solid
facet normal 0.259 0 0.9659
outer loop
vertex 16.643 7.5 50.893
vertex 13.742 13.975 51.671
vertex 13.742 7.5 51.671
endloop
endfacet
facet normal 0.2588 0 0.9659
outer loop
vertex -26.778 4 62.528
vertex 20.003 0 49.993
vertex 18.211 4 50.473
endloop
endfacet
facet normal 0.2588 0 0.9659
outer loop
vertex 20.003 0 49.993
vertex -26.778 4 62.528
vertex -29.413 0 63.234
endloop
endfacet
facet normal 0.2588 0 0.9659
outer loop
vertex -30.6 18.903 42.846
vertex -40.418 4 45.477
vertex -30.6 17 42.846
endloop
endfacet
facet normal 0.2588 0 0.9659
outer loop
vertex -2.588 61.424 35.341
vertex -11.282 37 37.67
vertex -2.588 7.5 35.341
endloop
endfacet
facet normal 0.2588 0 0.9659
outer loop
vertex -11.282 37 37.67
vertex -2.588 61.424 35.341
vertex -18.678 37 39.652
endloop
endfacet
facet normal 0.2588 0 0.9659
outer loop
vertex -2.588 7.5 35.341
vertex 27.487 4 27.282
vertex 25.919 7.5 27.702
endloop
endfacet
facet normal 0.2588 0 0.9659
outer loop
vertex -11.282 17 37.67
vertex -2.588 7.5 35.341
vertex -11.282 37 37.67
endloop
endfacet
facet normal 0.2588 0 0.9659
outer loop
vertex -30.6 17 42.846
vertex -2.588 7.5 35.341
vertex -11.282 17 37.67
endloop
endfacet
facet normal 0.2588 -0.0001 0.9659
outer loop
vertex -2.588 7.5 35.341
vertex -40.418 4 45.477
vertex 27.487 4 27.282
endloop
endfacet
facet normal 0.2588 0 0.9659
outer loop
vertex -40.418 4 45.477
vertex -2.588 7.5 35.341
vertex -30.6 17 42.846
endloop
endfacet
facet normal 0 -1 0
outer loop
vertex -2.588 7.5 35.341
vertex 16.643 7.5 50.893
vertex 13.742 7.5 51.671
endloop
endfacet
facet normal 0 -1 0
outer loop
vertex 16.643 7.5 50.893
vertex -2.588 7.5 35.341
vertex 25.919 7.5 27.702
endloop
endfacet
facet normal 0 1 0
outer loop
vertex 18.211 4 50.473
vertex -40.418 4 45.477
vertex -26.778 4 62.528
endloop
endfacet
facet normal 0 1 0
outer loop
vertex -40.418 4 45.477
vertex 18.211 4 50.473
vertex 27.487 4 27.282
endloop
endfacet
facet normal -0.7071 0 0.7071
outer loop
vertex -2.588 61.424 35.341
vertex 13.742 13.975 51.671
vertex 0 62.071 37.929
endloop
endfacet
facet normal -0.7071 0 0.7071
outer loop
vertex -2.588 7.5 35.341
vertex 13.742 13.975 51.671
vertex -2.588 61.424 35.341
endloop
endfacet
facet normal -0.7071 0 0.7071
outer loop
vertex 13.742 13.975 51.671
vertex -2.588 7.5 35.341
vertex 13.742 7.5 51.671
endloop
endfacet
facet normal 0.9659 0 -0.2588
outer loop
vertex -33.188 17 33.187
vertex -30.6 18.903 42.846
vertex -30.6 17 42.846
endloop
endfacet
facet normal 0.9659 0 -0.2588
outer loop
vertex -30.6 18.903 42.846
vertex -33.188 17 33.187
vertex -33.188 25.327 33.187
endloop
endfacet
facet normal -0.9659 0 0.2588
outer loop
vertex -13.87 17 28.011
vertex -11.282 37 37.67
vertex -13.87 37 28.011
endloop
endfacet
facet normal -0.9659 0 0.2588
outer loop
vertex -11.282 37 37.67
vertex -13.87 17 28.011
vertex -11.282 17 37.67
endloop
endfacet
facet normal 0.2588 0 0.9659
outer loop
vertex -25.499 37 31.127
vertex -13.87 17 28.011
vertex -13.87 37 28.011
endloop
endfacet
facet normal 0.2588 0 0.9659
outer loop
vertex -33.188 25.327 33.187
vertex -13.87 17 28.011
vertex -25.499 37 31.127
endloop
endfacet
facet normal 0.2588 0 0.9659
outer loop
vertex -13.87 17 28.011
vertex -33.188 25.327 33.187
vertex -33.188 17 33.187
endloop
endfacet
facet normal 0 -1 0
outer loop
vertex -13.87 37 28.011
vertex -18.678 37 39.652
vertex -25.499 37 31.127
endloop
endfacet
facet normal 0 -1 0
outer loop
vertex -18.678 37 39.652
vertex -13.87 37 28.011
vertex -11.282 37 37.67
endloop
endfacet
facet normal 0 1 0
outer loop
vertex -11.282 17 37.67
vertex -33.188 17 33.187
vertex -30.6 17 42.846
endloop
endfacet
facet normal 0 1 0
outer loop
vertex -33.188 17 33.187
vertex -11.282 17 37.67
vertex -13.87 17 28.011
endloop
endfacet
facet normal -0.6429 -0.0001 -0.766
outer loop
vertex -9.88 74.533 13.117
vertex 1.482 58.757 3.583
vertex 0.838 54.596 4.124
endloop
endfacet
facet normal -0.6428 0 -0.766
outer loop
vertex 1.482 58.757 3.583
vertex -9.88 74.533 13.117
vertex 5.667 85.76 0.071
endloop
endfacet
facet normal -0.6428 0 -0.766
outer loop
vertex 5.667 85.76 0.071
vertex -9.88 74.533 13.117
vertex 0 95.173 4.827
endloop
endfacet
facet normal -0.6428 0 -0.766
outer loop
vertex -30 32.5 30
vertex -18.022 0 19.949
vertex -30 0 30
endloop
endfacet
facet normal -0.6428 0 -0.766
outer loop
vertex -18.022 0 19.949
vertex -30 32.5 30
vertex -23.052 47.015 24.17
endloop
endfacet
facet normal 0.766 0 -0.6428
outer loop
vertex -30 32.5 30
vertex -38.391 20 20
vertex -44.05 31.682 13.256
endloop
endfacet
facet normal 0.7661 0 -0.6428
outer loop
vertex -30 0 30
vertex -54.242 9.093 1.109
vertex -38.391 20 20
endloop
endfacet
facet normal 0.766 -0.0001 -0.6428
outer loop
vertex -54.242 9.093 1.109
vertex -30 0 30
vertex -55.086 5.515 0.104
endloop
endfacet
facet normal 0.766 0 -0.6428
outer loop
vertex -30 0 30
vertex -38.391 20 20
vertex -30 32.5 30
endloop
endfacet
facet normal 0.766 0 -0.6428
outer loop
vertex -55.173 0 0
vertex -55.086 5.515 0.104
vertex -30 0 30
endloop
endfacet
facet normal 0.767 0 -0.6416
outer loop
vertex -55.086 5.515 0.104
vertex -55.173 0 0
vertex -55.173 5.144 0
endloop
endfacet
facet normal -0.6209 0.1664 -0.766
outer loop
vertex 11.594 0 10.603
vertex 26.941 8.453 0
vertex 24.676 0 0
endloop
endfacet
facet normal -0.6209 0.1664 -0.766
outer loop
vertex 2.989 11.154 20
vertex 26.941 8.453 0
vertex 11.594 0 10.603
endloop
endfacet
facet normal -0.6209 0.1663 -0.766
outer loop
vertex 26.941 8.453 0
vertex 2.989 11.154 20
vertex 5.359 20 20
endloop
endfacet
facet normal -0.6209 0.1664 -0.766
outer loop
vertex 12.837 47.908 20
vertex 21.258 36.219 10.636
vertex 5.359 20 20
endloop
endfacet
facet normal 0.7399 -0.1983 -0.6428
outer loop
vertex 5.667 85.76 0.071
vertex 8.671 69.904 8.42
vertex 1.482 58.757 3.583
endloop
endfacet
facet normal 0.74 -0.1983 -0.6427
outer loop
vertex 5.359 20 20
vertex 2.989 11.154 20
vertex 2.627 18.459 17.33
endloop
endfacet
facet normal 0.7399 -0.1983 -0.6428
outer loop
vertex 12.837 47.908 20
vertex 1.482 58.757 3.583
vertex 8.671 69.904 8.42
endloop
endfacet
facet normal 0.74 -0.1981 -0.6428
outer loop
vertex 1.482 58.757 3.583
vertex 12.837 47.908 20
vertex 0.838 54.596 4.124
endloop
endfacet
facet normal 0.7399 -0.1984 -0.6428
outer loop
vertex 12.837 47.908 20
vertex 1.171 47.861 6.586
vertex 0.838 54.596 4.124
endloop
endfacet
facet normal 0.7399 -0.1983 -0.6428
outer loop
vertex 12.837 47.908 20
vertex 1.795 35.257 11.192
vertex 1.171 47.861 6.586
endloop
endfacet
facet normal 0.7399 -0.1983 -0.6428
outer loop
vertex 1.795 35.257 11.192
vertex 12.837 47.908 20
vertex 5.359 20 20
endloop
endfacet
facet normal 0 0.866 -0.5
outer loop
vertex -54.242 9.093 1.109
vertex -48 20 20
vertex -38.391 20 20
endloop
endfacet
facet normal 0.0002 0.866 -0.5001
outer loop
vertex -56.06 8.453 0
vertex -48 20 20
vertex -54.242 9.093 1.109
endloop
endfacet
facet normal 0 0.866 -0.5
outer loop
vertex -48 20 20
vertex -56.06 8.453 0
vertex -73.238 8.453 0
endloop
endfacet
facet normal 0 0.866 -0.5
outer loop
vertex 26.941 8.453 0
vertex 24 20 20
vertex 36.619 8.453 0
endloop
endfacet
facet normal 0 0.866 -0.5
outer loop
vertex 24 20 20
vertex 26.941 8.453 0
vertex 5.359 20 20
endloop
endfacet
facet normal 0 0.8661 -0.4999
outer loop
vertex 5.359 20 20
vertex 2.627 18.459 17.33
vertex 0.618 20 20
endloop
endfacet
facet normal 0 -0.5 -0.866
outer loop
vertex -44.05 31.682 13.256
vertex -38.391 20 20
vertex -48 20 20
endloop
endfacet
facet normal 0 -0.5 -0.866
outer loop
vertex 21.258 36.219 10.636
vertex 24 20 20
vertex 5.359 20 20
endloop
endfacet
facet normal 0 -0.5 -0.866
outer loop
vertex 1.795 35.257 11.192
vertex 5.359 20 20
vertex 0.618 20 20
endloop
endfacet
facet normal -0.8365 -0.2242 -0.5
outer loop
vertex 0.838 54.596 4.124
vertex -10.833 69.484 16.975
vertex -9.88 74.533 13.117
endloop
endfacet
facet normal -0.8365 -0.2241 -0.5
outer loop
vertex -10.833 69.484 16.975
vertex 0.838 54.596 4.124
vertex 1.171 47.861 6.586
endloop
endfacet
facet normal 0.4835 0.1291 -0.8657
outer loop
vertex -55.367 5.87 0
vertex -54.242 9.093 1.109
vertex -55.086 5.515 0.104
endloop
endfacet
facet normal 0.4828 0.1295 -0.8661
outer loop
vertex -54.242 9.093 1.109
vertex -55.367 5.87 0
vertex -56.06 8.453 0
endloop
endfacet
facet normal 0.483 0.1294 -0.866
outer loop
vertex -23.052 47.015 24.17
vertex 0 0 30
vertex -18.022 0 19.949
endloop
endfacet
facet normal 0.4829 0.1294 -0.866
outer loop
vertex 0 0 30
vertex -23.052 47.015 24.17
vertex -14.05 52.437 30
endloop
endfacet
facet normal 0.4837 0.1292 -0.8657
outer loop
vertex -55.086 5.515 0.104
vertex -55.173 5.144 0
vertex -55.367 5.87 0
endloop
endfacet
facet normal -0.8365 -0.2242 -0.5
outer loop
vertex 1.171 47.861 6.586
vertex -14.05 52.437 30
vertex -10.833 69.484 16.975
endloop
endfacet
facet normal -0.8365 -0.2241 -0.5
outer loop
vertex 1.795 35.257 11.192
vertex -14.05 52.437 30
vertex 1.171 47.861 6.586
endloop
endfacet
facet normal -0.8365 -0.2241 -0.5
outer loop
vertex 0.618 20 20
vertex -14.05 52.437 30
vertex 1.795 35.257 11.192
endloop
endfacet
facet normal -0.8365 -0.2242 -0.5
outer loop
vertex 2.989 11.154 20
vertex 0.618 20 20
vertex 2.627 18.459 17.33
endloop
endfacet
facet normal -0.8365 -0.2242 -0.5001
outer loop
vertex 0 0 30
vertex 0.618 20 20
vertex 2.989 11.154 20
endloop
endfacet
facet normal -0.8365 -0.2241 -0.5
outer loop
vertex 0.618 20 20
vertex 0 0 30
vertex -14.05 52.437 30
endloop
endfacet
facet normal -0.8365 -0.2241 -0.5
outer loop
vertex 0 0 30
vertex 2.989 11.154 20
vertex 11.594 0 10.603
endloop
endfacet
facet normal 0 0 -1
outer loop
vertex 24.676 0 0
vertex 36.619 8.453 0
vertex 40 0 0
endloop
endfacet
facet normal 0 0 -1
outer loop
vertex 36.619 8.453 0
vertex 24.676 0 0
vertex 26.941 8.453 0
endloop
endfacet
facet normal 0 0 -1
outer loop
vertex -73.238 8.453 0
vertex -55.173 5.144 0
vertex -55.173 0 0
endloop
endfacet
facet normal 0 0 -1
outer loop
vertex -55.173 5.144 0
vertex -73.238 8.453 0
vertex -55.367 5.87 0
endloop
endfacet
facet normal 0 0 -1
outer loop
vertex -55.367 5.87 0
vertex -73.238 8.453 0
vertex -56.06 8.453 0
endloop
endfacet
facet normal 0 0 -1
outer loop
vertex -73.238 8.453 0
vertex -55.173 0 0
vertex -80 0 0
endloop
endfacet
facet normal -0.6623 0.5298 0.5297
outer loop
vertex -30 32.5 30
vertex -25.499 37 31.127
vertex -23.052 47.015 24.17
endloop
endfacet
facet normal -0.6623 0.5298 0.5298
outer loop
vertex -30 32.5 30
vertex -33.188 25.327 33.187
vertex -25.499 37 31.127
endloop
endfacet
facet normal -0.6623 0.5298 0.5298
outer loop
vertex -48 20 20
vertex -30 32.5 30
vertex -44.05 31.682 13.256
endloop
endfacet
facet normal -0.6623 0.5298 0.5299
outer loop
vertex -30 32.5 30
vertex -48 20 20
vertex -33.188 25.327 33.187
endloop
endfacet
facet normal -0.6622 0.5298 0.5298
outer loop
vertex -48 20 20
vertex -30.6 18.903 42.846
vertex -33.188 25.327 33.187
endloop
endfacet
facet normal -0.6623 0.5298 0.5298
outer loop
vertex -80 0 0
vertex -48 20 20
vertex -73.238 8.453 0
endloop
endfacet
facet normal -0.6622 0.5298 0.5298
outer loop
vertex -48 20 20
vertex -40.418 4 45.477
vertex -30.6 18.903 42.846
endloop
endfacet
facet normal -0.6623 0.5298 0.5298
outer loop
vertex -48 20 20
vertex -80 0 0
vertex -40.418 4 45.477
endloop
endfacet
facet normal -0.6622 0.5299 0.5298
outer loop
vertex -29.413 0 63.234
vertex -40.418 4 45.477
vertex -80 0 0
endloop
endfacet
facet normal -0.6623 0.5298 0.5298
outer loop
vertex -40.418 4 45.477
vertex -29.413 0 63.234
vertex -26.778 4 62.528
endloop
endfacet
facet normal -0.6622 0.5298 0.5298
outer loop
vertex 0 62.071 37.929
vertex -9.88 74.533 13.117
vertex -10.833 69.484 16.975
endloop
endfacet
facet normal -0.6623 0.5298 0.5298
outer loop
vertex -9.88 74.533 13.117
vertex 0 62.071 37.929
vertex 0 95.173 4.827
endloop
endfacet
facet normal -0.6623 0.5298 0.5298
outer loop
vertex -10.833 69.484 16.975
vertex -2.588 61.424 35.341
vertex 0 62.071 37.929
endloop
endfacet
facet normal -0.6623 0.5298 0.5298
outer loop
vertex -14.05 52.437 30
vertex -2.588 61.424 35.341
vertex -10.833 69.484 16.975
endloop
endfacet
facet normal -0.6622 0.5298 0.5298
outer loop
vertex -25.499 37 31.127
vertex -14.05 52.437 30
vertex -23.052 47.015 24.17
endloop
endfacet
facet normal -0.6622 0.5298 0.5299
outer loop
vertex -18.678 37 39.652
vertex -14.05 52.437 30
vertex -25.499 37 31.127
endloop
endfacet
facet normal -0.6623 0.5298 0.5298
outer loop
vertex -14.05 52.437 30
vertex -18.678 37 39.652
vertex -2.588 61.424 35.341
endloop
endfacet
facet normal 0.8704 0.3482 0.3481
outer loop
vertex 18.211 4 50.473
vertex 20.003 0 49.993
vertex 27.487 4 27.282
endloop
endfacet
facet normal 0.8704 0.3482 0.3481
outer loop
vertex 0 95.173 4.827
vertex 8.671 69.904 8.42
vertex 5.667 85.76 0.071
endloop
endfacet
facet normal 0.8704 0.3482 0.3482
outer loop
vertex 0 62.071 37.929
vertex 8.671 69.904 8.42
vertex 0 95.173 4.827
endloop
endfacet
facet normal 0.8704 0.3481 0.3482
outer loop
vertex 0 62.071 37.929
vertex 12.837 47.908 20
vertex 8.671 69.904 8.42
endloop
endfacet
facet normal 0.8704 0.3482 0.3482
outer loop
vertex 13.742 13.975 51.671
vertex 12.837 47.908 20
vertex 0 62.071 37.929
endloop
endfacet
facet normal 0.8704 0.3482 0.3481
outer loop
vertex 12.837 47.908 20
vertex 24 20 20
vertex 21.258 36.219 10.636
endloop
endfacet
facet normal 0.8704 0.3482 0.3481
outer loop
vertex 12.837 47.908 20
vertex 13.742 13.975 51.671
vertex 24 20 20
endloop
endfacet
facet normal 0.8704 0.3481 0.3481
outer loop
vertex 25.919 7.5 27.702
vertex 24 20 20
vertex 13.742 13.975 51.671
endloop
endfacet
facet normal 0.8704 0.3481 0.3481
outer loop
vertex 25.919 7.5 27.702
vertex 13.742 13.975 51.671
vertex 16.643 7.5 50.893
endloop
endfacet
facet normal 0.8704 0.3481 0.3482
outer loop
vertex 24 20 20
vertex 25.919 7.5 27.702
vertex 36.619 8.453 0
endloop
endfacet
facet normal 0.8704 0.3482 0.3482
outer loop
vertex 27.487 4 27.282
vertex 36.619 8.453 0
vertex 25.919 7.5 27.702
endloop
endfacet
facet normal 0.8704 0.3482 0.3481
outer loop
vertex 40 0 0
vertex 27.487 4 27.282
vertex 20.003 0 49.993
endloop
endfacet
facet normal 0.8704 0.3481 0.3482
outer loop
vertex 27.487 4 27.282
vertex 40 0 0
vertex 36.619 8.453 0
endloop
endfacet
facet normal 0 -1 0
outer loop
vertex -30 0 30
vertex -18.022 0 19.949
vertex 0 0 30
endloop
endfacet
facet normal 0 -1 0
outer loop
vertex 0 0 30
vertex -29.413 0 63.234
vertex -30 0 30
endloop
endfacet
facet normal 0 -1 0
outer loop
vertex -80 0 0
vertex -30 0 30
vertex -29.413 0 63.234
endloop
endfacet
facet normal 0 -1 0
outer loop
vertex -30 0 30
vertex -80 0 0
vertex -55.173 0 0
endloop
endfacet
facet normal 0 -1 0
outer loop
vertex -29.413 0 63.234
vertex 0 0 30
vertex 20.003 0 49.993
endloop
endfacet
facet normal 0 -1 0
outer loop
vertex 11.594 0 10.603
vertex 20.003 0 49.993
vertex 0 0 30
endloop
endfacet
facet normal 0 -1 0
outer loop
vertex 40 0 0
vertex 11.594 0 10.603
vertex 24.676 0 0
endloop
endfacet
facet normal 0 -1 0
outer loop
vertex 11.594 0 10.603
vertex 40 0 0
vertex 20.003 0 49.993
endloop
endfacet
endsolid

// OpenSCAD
base_depth_back = 80;
base_depth_front = 40;
base_width = 100;
pyramid_height = 100;
backside_distance = 160;
angle_spread_front = 30;
angle_spread_back = 10;

difference() {

    color("pink", 0.8) {
        linear_extrude(height = pyramid_height, scale = 0) {
            polygon(points = [
                [base_depth_front, 0],
                [-base_depth_back, 0],
                [0, base_width]
            ]);
        }
    }

    union() {
        translate([0, -1, 45]) rotate([0, -75, 0]) {
            color("blue", 0.5) {
                translate([0, 0, -backside_distance]) {
                    translate([10, 0, 0]) {
                        cube([300, 100, 2 * backside_distance]);
                    }
                    translate([-10, 5, -5]) {
                        // ridge
                        cube([200, 3.5, 2 * backside_distance + 10]);
                    }
                }
            }
            color("purple", 0.5) {
                translate([-10, 8, 0]) {
                    rotate([0, 30, 0]) {
                        cube([100, 200, 100]);
                    }
                    rotate([0, 0, 0]) {
                        cube([100, 200, 100]);
                    }
                }
            }
            color("cyan", 0.5) {
                translate([-20, 5 + 14 - 1, 9]) {
                    cube([20, 20, 20]);

                }
            }
        }
    }
    union() {
        color("grey", 0.5) {
            translate([-30, 0, 10]) {
                rotate([0, 0, 90]) {
                    translate([-100, 0, 20]) {
                        rotate([220, 0, 0]) {
                            cube([200, 100, 100]);
                        }
                    }
                }
            }
            rotate([0, 0, 75]) {
                translate([-100, 0, 20]) {
                    rotate([220, 0, 0]) {
                        cube([200, 100, 100]);
                    }
                }
            }
            rotate([00, 0, 0]) {
                translate([-100, 20, 20]) {
                    rotate([240, 0, 0]) {
                        cube([200, 100, 100]);
                    }
                }
            }
            rotate([0, 0, 105]) {
                translate([-100, 0, 30]) {
                    rotate([240, 0, 0]) {
                        cube([200, 100, 100]);
                    }
                }
            }
        }
    }

}
